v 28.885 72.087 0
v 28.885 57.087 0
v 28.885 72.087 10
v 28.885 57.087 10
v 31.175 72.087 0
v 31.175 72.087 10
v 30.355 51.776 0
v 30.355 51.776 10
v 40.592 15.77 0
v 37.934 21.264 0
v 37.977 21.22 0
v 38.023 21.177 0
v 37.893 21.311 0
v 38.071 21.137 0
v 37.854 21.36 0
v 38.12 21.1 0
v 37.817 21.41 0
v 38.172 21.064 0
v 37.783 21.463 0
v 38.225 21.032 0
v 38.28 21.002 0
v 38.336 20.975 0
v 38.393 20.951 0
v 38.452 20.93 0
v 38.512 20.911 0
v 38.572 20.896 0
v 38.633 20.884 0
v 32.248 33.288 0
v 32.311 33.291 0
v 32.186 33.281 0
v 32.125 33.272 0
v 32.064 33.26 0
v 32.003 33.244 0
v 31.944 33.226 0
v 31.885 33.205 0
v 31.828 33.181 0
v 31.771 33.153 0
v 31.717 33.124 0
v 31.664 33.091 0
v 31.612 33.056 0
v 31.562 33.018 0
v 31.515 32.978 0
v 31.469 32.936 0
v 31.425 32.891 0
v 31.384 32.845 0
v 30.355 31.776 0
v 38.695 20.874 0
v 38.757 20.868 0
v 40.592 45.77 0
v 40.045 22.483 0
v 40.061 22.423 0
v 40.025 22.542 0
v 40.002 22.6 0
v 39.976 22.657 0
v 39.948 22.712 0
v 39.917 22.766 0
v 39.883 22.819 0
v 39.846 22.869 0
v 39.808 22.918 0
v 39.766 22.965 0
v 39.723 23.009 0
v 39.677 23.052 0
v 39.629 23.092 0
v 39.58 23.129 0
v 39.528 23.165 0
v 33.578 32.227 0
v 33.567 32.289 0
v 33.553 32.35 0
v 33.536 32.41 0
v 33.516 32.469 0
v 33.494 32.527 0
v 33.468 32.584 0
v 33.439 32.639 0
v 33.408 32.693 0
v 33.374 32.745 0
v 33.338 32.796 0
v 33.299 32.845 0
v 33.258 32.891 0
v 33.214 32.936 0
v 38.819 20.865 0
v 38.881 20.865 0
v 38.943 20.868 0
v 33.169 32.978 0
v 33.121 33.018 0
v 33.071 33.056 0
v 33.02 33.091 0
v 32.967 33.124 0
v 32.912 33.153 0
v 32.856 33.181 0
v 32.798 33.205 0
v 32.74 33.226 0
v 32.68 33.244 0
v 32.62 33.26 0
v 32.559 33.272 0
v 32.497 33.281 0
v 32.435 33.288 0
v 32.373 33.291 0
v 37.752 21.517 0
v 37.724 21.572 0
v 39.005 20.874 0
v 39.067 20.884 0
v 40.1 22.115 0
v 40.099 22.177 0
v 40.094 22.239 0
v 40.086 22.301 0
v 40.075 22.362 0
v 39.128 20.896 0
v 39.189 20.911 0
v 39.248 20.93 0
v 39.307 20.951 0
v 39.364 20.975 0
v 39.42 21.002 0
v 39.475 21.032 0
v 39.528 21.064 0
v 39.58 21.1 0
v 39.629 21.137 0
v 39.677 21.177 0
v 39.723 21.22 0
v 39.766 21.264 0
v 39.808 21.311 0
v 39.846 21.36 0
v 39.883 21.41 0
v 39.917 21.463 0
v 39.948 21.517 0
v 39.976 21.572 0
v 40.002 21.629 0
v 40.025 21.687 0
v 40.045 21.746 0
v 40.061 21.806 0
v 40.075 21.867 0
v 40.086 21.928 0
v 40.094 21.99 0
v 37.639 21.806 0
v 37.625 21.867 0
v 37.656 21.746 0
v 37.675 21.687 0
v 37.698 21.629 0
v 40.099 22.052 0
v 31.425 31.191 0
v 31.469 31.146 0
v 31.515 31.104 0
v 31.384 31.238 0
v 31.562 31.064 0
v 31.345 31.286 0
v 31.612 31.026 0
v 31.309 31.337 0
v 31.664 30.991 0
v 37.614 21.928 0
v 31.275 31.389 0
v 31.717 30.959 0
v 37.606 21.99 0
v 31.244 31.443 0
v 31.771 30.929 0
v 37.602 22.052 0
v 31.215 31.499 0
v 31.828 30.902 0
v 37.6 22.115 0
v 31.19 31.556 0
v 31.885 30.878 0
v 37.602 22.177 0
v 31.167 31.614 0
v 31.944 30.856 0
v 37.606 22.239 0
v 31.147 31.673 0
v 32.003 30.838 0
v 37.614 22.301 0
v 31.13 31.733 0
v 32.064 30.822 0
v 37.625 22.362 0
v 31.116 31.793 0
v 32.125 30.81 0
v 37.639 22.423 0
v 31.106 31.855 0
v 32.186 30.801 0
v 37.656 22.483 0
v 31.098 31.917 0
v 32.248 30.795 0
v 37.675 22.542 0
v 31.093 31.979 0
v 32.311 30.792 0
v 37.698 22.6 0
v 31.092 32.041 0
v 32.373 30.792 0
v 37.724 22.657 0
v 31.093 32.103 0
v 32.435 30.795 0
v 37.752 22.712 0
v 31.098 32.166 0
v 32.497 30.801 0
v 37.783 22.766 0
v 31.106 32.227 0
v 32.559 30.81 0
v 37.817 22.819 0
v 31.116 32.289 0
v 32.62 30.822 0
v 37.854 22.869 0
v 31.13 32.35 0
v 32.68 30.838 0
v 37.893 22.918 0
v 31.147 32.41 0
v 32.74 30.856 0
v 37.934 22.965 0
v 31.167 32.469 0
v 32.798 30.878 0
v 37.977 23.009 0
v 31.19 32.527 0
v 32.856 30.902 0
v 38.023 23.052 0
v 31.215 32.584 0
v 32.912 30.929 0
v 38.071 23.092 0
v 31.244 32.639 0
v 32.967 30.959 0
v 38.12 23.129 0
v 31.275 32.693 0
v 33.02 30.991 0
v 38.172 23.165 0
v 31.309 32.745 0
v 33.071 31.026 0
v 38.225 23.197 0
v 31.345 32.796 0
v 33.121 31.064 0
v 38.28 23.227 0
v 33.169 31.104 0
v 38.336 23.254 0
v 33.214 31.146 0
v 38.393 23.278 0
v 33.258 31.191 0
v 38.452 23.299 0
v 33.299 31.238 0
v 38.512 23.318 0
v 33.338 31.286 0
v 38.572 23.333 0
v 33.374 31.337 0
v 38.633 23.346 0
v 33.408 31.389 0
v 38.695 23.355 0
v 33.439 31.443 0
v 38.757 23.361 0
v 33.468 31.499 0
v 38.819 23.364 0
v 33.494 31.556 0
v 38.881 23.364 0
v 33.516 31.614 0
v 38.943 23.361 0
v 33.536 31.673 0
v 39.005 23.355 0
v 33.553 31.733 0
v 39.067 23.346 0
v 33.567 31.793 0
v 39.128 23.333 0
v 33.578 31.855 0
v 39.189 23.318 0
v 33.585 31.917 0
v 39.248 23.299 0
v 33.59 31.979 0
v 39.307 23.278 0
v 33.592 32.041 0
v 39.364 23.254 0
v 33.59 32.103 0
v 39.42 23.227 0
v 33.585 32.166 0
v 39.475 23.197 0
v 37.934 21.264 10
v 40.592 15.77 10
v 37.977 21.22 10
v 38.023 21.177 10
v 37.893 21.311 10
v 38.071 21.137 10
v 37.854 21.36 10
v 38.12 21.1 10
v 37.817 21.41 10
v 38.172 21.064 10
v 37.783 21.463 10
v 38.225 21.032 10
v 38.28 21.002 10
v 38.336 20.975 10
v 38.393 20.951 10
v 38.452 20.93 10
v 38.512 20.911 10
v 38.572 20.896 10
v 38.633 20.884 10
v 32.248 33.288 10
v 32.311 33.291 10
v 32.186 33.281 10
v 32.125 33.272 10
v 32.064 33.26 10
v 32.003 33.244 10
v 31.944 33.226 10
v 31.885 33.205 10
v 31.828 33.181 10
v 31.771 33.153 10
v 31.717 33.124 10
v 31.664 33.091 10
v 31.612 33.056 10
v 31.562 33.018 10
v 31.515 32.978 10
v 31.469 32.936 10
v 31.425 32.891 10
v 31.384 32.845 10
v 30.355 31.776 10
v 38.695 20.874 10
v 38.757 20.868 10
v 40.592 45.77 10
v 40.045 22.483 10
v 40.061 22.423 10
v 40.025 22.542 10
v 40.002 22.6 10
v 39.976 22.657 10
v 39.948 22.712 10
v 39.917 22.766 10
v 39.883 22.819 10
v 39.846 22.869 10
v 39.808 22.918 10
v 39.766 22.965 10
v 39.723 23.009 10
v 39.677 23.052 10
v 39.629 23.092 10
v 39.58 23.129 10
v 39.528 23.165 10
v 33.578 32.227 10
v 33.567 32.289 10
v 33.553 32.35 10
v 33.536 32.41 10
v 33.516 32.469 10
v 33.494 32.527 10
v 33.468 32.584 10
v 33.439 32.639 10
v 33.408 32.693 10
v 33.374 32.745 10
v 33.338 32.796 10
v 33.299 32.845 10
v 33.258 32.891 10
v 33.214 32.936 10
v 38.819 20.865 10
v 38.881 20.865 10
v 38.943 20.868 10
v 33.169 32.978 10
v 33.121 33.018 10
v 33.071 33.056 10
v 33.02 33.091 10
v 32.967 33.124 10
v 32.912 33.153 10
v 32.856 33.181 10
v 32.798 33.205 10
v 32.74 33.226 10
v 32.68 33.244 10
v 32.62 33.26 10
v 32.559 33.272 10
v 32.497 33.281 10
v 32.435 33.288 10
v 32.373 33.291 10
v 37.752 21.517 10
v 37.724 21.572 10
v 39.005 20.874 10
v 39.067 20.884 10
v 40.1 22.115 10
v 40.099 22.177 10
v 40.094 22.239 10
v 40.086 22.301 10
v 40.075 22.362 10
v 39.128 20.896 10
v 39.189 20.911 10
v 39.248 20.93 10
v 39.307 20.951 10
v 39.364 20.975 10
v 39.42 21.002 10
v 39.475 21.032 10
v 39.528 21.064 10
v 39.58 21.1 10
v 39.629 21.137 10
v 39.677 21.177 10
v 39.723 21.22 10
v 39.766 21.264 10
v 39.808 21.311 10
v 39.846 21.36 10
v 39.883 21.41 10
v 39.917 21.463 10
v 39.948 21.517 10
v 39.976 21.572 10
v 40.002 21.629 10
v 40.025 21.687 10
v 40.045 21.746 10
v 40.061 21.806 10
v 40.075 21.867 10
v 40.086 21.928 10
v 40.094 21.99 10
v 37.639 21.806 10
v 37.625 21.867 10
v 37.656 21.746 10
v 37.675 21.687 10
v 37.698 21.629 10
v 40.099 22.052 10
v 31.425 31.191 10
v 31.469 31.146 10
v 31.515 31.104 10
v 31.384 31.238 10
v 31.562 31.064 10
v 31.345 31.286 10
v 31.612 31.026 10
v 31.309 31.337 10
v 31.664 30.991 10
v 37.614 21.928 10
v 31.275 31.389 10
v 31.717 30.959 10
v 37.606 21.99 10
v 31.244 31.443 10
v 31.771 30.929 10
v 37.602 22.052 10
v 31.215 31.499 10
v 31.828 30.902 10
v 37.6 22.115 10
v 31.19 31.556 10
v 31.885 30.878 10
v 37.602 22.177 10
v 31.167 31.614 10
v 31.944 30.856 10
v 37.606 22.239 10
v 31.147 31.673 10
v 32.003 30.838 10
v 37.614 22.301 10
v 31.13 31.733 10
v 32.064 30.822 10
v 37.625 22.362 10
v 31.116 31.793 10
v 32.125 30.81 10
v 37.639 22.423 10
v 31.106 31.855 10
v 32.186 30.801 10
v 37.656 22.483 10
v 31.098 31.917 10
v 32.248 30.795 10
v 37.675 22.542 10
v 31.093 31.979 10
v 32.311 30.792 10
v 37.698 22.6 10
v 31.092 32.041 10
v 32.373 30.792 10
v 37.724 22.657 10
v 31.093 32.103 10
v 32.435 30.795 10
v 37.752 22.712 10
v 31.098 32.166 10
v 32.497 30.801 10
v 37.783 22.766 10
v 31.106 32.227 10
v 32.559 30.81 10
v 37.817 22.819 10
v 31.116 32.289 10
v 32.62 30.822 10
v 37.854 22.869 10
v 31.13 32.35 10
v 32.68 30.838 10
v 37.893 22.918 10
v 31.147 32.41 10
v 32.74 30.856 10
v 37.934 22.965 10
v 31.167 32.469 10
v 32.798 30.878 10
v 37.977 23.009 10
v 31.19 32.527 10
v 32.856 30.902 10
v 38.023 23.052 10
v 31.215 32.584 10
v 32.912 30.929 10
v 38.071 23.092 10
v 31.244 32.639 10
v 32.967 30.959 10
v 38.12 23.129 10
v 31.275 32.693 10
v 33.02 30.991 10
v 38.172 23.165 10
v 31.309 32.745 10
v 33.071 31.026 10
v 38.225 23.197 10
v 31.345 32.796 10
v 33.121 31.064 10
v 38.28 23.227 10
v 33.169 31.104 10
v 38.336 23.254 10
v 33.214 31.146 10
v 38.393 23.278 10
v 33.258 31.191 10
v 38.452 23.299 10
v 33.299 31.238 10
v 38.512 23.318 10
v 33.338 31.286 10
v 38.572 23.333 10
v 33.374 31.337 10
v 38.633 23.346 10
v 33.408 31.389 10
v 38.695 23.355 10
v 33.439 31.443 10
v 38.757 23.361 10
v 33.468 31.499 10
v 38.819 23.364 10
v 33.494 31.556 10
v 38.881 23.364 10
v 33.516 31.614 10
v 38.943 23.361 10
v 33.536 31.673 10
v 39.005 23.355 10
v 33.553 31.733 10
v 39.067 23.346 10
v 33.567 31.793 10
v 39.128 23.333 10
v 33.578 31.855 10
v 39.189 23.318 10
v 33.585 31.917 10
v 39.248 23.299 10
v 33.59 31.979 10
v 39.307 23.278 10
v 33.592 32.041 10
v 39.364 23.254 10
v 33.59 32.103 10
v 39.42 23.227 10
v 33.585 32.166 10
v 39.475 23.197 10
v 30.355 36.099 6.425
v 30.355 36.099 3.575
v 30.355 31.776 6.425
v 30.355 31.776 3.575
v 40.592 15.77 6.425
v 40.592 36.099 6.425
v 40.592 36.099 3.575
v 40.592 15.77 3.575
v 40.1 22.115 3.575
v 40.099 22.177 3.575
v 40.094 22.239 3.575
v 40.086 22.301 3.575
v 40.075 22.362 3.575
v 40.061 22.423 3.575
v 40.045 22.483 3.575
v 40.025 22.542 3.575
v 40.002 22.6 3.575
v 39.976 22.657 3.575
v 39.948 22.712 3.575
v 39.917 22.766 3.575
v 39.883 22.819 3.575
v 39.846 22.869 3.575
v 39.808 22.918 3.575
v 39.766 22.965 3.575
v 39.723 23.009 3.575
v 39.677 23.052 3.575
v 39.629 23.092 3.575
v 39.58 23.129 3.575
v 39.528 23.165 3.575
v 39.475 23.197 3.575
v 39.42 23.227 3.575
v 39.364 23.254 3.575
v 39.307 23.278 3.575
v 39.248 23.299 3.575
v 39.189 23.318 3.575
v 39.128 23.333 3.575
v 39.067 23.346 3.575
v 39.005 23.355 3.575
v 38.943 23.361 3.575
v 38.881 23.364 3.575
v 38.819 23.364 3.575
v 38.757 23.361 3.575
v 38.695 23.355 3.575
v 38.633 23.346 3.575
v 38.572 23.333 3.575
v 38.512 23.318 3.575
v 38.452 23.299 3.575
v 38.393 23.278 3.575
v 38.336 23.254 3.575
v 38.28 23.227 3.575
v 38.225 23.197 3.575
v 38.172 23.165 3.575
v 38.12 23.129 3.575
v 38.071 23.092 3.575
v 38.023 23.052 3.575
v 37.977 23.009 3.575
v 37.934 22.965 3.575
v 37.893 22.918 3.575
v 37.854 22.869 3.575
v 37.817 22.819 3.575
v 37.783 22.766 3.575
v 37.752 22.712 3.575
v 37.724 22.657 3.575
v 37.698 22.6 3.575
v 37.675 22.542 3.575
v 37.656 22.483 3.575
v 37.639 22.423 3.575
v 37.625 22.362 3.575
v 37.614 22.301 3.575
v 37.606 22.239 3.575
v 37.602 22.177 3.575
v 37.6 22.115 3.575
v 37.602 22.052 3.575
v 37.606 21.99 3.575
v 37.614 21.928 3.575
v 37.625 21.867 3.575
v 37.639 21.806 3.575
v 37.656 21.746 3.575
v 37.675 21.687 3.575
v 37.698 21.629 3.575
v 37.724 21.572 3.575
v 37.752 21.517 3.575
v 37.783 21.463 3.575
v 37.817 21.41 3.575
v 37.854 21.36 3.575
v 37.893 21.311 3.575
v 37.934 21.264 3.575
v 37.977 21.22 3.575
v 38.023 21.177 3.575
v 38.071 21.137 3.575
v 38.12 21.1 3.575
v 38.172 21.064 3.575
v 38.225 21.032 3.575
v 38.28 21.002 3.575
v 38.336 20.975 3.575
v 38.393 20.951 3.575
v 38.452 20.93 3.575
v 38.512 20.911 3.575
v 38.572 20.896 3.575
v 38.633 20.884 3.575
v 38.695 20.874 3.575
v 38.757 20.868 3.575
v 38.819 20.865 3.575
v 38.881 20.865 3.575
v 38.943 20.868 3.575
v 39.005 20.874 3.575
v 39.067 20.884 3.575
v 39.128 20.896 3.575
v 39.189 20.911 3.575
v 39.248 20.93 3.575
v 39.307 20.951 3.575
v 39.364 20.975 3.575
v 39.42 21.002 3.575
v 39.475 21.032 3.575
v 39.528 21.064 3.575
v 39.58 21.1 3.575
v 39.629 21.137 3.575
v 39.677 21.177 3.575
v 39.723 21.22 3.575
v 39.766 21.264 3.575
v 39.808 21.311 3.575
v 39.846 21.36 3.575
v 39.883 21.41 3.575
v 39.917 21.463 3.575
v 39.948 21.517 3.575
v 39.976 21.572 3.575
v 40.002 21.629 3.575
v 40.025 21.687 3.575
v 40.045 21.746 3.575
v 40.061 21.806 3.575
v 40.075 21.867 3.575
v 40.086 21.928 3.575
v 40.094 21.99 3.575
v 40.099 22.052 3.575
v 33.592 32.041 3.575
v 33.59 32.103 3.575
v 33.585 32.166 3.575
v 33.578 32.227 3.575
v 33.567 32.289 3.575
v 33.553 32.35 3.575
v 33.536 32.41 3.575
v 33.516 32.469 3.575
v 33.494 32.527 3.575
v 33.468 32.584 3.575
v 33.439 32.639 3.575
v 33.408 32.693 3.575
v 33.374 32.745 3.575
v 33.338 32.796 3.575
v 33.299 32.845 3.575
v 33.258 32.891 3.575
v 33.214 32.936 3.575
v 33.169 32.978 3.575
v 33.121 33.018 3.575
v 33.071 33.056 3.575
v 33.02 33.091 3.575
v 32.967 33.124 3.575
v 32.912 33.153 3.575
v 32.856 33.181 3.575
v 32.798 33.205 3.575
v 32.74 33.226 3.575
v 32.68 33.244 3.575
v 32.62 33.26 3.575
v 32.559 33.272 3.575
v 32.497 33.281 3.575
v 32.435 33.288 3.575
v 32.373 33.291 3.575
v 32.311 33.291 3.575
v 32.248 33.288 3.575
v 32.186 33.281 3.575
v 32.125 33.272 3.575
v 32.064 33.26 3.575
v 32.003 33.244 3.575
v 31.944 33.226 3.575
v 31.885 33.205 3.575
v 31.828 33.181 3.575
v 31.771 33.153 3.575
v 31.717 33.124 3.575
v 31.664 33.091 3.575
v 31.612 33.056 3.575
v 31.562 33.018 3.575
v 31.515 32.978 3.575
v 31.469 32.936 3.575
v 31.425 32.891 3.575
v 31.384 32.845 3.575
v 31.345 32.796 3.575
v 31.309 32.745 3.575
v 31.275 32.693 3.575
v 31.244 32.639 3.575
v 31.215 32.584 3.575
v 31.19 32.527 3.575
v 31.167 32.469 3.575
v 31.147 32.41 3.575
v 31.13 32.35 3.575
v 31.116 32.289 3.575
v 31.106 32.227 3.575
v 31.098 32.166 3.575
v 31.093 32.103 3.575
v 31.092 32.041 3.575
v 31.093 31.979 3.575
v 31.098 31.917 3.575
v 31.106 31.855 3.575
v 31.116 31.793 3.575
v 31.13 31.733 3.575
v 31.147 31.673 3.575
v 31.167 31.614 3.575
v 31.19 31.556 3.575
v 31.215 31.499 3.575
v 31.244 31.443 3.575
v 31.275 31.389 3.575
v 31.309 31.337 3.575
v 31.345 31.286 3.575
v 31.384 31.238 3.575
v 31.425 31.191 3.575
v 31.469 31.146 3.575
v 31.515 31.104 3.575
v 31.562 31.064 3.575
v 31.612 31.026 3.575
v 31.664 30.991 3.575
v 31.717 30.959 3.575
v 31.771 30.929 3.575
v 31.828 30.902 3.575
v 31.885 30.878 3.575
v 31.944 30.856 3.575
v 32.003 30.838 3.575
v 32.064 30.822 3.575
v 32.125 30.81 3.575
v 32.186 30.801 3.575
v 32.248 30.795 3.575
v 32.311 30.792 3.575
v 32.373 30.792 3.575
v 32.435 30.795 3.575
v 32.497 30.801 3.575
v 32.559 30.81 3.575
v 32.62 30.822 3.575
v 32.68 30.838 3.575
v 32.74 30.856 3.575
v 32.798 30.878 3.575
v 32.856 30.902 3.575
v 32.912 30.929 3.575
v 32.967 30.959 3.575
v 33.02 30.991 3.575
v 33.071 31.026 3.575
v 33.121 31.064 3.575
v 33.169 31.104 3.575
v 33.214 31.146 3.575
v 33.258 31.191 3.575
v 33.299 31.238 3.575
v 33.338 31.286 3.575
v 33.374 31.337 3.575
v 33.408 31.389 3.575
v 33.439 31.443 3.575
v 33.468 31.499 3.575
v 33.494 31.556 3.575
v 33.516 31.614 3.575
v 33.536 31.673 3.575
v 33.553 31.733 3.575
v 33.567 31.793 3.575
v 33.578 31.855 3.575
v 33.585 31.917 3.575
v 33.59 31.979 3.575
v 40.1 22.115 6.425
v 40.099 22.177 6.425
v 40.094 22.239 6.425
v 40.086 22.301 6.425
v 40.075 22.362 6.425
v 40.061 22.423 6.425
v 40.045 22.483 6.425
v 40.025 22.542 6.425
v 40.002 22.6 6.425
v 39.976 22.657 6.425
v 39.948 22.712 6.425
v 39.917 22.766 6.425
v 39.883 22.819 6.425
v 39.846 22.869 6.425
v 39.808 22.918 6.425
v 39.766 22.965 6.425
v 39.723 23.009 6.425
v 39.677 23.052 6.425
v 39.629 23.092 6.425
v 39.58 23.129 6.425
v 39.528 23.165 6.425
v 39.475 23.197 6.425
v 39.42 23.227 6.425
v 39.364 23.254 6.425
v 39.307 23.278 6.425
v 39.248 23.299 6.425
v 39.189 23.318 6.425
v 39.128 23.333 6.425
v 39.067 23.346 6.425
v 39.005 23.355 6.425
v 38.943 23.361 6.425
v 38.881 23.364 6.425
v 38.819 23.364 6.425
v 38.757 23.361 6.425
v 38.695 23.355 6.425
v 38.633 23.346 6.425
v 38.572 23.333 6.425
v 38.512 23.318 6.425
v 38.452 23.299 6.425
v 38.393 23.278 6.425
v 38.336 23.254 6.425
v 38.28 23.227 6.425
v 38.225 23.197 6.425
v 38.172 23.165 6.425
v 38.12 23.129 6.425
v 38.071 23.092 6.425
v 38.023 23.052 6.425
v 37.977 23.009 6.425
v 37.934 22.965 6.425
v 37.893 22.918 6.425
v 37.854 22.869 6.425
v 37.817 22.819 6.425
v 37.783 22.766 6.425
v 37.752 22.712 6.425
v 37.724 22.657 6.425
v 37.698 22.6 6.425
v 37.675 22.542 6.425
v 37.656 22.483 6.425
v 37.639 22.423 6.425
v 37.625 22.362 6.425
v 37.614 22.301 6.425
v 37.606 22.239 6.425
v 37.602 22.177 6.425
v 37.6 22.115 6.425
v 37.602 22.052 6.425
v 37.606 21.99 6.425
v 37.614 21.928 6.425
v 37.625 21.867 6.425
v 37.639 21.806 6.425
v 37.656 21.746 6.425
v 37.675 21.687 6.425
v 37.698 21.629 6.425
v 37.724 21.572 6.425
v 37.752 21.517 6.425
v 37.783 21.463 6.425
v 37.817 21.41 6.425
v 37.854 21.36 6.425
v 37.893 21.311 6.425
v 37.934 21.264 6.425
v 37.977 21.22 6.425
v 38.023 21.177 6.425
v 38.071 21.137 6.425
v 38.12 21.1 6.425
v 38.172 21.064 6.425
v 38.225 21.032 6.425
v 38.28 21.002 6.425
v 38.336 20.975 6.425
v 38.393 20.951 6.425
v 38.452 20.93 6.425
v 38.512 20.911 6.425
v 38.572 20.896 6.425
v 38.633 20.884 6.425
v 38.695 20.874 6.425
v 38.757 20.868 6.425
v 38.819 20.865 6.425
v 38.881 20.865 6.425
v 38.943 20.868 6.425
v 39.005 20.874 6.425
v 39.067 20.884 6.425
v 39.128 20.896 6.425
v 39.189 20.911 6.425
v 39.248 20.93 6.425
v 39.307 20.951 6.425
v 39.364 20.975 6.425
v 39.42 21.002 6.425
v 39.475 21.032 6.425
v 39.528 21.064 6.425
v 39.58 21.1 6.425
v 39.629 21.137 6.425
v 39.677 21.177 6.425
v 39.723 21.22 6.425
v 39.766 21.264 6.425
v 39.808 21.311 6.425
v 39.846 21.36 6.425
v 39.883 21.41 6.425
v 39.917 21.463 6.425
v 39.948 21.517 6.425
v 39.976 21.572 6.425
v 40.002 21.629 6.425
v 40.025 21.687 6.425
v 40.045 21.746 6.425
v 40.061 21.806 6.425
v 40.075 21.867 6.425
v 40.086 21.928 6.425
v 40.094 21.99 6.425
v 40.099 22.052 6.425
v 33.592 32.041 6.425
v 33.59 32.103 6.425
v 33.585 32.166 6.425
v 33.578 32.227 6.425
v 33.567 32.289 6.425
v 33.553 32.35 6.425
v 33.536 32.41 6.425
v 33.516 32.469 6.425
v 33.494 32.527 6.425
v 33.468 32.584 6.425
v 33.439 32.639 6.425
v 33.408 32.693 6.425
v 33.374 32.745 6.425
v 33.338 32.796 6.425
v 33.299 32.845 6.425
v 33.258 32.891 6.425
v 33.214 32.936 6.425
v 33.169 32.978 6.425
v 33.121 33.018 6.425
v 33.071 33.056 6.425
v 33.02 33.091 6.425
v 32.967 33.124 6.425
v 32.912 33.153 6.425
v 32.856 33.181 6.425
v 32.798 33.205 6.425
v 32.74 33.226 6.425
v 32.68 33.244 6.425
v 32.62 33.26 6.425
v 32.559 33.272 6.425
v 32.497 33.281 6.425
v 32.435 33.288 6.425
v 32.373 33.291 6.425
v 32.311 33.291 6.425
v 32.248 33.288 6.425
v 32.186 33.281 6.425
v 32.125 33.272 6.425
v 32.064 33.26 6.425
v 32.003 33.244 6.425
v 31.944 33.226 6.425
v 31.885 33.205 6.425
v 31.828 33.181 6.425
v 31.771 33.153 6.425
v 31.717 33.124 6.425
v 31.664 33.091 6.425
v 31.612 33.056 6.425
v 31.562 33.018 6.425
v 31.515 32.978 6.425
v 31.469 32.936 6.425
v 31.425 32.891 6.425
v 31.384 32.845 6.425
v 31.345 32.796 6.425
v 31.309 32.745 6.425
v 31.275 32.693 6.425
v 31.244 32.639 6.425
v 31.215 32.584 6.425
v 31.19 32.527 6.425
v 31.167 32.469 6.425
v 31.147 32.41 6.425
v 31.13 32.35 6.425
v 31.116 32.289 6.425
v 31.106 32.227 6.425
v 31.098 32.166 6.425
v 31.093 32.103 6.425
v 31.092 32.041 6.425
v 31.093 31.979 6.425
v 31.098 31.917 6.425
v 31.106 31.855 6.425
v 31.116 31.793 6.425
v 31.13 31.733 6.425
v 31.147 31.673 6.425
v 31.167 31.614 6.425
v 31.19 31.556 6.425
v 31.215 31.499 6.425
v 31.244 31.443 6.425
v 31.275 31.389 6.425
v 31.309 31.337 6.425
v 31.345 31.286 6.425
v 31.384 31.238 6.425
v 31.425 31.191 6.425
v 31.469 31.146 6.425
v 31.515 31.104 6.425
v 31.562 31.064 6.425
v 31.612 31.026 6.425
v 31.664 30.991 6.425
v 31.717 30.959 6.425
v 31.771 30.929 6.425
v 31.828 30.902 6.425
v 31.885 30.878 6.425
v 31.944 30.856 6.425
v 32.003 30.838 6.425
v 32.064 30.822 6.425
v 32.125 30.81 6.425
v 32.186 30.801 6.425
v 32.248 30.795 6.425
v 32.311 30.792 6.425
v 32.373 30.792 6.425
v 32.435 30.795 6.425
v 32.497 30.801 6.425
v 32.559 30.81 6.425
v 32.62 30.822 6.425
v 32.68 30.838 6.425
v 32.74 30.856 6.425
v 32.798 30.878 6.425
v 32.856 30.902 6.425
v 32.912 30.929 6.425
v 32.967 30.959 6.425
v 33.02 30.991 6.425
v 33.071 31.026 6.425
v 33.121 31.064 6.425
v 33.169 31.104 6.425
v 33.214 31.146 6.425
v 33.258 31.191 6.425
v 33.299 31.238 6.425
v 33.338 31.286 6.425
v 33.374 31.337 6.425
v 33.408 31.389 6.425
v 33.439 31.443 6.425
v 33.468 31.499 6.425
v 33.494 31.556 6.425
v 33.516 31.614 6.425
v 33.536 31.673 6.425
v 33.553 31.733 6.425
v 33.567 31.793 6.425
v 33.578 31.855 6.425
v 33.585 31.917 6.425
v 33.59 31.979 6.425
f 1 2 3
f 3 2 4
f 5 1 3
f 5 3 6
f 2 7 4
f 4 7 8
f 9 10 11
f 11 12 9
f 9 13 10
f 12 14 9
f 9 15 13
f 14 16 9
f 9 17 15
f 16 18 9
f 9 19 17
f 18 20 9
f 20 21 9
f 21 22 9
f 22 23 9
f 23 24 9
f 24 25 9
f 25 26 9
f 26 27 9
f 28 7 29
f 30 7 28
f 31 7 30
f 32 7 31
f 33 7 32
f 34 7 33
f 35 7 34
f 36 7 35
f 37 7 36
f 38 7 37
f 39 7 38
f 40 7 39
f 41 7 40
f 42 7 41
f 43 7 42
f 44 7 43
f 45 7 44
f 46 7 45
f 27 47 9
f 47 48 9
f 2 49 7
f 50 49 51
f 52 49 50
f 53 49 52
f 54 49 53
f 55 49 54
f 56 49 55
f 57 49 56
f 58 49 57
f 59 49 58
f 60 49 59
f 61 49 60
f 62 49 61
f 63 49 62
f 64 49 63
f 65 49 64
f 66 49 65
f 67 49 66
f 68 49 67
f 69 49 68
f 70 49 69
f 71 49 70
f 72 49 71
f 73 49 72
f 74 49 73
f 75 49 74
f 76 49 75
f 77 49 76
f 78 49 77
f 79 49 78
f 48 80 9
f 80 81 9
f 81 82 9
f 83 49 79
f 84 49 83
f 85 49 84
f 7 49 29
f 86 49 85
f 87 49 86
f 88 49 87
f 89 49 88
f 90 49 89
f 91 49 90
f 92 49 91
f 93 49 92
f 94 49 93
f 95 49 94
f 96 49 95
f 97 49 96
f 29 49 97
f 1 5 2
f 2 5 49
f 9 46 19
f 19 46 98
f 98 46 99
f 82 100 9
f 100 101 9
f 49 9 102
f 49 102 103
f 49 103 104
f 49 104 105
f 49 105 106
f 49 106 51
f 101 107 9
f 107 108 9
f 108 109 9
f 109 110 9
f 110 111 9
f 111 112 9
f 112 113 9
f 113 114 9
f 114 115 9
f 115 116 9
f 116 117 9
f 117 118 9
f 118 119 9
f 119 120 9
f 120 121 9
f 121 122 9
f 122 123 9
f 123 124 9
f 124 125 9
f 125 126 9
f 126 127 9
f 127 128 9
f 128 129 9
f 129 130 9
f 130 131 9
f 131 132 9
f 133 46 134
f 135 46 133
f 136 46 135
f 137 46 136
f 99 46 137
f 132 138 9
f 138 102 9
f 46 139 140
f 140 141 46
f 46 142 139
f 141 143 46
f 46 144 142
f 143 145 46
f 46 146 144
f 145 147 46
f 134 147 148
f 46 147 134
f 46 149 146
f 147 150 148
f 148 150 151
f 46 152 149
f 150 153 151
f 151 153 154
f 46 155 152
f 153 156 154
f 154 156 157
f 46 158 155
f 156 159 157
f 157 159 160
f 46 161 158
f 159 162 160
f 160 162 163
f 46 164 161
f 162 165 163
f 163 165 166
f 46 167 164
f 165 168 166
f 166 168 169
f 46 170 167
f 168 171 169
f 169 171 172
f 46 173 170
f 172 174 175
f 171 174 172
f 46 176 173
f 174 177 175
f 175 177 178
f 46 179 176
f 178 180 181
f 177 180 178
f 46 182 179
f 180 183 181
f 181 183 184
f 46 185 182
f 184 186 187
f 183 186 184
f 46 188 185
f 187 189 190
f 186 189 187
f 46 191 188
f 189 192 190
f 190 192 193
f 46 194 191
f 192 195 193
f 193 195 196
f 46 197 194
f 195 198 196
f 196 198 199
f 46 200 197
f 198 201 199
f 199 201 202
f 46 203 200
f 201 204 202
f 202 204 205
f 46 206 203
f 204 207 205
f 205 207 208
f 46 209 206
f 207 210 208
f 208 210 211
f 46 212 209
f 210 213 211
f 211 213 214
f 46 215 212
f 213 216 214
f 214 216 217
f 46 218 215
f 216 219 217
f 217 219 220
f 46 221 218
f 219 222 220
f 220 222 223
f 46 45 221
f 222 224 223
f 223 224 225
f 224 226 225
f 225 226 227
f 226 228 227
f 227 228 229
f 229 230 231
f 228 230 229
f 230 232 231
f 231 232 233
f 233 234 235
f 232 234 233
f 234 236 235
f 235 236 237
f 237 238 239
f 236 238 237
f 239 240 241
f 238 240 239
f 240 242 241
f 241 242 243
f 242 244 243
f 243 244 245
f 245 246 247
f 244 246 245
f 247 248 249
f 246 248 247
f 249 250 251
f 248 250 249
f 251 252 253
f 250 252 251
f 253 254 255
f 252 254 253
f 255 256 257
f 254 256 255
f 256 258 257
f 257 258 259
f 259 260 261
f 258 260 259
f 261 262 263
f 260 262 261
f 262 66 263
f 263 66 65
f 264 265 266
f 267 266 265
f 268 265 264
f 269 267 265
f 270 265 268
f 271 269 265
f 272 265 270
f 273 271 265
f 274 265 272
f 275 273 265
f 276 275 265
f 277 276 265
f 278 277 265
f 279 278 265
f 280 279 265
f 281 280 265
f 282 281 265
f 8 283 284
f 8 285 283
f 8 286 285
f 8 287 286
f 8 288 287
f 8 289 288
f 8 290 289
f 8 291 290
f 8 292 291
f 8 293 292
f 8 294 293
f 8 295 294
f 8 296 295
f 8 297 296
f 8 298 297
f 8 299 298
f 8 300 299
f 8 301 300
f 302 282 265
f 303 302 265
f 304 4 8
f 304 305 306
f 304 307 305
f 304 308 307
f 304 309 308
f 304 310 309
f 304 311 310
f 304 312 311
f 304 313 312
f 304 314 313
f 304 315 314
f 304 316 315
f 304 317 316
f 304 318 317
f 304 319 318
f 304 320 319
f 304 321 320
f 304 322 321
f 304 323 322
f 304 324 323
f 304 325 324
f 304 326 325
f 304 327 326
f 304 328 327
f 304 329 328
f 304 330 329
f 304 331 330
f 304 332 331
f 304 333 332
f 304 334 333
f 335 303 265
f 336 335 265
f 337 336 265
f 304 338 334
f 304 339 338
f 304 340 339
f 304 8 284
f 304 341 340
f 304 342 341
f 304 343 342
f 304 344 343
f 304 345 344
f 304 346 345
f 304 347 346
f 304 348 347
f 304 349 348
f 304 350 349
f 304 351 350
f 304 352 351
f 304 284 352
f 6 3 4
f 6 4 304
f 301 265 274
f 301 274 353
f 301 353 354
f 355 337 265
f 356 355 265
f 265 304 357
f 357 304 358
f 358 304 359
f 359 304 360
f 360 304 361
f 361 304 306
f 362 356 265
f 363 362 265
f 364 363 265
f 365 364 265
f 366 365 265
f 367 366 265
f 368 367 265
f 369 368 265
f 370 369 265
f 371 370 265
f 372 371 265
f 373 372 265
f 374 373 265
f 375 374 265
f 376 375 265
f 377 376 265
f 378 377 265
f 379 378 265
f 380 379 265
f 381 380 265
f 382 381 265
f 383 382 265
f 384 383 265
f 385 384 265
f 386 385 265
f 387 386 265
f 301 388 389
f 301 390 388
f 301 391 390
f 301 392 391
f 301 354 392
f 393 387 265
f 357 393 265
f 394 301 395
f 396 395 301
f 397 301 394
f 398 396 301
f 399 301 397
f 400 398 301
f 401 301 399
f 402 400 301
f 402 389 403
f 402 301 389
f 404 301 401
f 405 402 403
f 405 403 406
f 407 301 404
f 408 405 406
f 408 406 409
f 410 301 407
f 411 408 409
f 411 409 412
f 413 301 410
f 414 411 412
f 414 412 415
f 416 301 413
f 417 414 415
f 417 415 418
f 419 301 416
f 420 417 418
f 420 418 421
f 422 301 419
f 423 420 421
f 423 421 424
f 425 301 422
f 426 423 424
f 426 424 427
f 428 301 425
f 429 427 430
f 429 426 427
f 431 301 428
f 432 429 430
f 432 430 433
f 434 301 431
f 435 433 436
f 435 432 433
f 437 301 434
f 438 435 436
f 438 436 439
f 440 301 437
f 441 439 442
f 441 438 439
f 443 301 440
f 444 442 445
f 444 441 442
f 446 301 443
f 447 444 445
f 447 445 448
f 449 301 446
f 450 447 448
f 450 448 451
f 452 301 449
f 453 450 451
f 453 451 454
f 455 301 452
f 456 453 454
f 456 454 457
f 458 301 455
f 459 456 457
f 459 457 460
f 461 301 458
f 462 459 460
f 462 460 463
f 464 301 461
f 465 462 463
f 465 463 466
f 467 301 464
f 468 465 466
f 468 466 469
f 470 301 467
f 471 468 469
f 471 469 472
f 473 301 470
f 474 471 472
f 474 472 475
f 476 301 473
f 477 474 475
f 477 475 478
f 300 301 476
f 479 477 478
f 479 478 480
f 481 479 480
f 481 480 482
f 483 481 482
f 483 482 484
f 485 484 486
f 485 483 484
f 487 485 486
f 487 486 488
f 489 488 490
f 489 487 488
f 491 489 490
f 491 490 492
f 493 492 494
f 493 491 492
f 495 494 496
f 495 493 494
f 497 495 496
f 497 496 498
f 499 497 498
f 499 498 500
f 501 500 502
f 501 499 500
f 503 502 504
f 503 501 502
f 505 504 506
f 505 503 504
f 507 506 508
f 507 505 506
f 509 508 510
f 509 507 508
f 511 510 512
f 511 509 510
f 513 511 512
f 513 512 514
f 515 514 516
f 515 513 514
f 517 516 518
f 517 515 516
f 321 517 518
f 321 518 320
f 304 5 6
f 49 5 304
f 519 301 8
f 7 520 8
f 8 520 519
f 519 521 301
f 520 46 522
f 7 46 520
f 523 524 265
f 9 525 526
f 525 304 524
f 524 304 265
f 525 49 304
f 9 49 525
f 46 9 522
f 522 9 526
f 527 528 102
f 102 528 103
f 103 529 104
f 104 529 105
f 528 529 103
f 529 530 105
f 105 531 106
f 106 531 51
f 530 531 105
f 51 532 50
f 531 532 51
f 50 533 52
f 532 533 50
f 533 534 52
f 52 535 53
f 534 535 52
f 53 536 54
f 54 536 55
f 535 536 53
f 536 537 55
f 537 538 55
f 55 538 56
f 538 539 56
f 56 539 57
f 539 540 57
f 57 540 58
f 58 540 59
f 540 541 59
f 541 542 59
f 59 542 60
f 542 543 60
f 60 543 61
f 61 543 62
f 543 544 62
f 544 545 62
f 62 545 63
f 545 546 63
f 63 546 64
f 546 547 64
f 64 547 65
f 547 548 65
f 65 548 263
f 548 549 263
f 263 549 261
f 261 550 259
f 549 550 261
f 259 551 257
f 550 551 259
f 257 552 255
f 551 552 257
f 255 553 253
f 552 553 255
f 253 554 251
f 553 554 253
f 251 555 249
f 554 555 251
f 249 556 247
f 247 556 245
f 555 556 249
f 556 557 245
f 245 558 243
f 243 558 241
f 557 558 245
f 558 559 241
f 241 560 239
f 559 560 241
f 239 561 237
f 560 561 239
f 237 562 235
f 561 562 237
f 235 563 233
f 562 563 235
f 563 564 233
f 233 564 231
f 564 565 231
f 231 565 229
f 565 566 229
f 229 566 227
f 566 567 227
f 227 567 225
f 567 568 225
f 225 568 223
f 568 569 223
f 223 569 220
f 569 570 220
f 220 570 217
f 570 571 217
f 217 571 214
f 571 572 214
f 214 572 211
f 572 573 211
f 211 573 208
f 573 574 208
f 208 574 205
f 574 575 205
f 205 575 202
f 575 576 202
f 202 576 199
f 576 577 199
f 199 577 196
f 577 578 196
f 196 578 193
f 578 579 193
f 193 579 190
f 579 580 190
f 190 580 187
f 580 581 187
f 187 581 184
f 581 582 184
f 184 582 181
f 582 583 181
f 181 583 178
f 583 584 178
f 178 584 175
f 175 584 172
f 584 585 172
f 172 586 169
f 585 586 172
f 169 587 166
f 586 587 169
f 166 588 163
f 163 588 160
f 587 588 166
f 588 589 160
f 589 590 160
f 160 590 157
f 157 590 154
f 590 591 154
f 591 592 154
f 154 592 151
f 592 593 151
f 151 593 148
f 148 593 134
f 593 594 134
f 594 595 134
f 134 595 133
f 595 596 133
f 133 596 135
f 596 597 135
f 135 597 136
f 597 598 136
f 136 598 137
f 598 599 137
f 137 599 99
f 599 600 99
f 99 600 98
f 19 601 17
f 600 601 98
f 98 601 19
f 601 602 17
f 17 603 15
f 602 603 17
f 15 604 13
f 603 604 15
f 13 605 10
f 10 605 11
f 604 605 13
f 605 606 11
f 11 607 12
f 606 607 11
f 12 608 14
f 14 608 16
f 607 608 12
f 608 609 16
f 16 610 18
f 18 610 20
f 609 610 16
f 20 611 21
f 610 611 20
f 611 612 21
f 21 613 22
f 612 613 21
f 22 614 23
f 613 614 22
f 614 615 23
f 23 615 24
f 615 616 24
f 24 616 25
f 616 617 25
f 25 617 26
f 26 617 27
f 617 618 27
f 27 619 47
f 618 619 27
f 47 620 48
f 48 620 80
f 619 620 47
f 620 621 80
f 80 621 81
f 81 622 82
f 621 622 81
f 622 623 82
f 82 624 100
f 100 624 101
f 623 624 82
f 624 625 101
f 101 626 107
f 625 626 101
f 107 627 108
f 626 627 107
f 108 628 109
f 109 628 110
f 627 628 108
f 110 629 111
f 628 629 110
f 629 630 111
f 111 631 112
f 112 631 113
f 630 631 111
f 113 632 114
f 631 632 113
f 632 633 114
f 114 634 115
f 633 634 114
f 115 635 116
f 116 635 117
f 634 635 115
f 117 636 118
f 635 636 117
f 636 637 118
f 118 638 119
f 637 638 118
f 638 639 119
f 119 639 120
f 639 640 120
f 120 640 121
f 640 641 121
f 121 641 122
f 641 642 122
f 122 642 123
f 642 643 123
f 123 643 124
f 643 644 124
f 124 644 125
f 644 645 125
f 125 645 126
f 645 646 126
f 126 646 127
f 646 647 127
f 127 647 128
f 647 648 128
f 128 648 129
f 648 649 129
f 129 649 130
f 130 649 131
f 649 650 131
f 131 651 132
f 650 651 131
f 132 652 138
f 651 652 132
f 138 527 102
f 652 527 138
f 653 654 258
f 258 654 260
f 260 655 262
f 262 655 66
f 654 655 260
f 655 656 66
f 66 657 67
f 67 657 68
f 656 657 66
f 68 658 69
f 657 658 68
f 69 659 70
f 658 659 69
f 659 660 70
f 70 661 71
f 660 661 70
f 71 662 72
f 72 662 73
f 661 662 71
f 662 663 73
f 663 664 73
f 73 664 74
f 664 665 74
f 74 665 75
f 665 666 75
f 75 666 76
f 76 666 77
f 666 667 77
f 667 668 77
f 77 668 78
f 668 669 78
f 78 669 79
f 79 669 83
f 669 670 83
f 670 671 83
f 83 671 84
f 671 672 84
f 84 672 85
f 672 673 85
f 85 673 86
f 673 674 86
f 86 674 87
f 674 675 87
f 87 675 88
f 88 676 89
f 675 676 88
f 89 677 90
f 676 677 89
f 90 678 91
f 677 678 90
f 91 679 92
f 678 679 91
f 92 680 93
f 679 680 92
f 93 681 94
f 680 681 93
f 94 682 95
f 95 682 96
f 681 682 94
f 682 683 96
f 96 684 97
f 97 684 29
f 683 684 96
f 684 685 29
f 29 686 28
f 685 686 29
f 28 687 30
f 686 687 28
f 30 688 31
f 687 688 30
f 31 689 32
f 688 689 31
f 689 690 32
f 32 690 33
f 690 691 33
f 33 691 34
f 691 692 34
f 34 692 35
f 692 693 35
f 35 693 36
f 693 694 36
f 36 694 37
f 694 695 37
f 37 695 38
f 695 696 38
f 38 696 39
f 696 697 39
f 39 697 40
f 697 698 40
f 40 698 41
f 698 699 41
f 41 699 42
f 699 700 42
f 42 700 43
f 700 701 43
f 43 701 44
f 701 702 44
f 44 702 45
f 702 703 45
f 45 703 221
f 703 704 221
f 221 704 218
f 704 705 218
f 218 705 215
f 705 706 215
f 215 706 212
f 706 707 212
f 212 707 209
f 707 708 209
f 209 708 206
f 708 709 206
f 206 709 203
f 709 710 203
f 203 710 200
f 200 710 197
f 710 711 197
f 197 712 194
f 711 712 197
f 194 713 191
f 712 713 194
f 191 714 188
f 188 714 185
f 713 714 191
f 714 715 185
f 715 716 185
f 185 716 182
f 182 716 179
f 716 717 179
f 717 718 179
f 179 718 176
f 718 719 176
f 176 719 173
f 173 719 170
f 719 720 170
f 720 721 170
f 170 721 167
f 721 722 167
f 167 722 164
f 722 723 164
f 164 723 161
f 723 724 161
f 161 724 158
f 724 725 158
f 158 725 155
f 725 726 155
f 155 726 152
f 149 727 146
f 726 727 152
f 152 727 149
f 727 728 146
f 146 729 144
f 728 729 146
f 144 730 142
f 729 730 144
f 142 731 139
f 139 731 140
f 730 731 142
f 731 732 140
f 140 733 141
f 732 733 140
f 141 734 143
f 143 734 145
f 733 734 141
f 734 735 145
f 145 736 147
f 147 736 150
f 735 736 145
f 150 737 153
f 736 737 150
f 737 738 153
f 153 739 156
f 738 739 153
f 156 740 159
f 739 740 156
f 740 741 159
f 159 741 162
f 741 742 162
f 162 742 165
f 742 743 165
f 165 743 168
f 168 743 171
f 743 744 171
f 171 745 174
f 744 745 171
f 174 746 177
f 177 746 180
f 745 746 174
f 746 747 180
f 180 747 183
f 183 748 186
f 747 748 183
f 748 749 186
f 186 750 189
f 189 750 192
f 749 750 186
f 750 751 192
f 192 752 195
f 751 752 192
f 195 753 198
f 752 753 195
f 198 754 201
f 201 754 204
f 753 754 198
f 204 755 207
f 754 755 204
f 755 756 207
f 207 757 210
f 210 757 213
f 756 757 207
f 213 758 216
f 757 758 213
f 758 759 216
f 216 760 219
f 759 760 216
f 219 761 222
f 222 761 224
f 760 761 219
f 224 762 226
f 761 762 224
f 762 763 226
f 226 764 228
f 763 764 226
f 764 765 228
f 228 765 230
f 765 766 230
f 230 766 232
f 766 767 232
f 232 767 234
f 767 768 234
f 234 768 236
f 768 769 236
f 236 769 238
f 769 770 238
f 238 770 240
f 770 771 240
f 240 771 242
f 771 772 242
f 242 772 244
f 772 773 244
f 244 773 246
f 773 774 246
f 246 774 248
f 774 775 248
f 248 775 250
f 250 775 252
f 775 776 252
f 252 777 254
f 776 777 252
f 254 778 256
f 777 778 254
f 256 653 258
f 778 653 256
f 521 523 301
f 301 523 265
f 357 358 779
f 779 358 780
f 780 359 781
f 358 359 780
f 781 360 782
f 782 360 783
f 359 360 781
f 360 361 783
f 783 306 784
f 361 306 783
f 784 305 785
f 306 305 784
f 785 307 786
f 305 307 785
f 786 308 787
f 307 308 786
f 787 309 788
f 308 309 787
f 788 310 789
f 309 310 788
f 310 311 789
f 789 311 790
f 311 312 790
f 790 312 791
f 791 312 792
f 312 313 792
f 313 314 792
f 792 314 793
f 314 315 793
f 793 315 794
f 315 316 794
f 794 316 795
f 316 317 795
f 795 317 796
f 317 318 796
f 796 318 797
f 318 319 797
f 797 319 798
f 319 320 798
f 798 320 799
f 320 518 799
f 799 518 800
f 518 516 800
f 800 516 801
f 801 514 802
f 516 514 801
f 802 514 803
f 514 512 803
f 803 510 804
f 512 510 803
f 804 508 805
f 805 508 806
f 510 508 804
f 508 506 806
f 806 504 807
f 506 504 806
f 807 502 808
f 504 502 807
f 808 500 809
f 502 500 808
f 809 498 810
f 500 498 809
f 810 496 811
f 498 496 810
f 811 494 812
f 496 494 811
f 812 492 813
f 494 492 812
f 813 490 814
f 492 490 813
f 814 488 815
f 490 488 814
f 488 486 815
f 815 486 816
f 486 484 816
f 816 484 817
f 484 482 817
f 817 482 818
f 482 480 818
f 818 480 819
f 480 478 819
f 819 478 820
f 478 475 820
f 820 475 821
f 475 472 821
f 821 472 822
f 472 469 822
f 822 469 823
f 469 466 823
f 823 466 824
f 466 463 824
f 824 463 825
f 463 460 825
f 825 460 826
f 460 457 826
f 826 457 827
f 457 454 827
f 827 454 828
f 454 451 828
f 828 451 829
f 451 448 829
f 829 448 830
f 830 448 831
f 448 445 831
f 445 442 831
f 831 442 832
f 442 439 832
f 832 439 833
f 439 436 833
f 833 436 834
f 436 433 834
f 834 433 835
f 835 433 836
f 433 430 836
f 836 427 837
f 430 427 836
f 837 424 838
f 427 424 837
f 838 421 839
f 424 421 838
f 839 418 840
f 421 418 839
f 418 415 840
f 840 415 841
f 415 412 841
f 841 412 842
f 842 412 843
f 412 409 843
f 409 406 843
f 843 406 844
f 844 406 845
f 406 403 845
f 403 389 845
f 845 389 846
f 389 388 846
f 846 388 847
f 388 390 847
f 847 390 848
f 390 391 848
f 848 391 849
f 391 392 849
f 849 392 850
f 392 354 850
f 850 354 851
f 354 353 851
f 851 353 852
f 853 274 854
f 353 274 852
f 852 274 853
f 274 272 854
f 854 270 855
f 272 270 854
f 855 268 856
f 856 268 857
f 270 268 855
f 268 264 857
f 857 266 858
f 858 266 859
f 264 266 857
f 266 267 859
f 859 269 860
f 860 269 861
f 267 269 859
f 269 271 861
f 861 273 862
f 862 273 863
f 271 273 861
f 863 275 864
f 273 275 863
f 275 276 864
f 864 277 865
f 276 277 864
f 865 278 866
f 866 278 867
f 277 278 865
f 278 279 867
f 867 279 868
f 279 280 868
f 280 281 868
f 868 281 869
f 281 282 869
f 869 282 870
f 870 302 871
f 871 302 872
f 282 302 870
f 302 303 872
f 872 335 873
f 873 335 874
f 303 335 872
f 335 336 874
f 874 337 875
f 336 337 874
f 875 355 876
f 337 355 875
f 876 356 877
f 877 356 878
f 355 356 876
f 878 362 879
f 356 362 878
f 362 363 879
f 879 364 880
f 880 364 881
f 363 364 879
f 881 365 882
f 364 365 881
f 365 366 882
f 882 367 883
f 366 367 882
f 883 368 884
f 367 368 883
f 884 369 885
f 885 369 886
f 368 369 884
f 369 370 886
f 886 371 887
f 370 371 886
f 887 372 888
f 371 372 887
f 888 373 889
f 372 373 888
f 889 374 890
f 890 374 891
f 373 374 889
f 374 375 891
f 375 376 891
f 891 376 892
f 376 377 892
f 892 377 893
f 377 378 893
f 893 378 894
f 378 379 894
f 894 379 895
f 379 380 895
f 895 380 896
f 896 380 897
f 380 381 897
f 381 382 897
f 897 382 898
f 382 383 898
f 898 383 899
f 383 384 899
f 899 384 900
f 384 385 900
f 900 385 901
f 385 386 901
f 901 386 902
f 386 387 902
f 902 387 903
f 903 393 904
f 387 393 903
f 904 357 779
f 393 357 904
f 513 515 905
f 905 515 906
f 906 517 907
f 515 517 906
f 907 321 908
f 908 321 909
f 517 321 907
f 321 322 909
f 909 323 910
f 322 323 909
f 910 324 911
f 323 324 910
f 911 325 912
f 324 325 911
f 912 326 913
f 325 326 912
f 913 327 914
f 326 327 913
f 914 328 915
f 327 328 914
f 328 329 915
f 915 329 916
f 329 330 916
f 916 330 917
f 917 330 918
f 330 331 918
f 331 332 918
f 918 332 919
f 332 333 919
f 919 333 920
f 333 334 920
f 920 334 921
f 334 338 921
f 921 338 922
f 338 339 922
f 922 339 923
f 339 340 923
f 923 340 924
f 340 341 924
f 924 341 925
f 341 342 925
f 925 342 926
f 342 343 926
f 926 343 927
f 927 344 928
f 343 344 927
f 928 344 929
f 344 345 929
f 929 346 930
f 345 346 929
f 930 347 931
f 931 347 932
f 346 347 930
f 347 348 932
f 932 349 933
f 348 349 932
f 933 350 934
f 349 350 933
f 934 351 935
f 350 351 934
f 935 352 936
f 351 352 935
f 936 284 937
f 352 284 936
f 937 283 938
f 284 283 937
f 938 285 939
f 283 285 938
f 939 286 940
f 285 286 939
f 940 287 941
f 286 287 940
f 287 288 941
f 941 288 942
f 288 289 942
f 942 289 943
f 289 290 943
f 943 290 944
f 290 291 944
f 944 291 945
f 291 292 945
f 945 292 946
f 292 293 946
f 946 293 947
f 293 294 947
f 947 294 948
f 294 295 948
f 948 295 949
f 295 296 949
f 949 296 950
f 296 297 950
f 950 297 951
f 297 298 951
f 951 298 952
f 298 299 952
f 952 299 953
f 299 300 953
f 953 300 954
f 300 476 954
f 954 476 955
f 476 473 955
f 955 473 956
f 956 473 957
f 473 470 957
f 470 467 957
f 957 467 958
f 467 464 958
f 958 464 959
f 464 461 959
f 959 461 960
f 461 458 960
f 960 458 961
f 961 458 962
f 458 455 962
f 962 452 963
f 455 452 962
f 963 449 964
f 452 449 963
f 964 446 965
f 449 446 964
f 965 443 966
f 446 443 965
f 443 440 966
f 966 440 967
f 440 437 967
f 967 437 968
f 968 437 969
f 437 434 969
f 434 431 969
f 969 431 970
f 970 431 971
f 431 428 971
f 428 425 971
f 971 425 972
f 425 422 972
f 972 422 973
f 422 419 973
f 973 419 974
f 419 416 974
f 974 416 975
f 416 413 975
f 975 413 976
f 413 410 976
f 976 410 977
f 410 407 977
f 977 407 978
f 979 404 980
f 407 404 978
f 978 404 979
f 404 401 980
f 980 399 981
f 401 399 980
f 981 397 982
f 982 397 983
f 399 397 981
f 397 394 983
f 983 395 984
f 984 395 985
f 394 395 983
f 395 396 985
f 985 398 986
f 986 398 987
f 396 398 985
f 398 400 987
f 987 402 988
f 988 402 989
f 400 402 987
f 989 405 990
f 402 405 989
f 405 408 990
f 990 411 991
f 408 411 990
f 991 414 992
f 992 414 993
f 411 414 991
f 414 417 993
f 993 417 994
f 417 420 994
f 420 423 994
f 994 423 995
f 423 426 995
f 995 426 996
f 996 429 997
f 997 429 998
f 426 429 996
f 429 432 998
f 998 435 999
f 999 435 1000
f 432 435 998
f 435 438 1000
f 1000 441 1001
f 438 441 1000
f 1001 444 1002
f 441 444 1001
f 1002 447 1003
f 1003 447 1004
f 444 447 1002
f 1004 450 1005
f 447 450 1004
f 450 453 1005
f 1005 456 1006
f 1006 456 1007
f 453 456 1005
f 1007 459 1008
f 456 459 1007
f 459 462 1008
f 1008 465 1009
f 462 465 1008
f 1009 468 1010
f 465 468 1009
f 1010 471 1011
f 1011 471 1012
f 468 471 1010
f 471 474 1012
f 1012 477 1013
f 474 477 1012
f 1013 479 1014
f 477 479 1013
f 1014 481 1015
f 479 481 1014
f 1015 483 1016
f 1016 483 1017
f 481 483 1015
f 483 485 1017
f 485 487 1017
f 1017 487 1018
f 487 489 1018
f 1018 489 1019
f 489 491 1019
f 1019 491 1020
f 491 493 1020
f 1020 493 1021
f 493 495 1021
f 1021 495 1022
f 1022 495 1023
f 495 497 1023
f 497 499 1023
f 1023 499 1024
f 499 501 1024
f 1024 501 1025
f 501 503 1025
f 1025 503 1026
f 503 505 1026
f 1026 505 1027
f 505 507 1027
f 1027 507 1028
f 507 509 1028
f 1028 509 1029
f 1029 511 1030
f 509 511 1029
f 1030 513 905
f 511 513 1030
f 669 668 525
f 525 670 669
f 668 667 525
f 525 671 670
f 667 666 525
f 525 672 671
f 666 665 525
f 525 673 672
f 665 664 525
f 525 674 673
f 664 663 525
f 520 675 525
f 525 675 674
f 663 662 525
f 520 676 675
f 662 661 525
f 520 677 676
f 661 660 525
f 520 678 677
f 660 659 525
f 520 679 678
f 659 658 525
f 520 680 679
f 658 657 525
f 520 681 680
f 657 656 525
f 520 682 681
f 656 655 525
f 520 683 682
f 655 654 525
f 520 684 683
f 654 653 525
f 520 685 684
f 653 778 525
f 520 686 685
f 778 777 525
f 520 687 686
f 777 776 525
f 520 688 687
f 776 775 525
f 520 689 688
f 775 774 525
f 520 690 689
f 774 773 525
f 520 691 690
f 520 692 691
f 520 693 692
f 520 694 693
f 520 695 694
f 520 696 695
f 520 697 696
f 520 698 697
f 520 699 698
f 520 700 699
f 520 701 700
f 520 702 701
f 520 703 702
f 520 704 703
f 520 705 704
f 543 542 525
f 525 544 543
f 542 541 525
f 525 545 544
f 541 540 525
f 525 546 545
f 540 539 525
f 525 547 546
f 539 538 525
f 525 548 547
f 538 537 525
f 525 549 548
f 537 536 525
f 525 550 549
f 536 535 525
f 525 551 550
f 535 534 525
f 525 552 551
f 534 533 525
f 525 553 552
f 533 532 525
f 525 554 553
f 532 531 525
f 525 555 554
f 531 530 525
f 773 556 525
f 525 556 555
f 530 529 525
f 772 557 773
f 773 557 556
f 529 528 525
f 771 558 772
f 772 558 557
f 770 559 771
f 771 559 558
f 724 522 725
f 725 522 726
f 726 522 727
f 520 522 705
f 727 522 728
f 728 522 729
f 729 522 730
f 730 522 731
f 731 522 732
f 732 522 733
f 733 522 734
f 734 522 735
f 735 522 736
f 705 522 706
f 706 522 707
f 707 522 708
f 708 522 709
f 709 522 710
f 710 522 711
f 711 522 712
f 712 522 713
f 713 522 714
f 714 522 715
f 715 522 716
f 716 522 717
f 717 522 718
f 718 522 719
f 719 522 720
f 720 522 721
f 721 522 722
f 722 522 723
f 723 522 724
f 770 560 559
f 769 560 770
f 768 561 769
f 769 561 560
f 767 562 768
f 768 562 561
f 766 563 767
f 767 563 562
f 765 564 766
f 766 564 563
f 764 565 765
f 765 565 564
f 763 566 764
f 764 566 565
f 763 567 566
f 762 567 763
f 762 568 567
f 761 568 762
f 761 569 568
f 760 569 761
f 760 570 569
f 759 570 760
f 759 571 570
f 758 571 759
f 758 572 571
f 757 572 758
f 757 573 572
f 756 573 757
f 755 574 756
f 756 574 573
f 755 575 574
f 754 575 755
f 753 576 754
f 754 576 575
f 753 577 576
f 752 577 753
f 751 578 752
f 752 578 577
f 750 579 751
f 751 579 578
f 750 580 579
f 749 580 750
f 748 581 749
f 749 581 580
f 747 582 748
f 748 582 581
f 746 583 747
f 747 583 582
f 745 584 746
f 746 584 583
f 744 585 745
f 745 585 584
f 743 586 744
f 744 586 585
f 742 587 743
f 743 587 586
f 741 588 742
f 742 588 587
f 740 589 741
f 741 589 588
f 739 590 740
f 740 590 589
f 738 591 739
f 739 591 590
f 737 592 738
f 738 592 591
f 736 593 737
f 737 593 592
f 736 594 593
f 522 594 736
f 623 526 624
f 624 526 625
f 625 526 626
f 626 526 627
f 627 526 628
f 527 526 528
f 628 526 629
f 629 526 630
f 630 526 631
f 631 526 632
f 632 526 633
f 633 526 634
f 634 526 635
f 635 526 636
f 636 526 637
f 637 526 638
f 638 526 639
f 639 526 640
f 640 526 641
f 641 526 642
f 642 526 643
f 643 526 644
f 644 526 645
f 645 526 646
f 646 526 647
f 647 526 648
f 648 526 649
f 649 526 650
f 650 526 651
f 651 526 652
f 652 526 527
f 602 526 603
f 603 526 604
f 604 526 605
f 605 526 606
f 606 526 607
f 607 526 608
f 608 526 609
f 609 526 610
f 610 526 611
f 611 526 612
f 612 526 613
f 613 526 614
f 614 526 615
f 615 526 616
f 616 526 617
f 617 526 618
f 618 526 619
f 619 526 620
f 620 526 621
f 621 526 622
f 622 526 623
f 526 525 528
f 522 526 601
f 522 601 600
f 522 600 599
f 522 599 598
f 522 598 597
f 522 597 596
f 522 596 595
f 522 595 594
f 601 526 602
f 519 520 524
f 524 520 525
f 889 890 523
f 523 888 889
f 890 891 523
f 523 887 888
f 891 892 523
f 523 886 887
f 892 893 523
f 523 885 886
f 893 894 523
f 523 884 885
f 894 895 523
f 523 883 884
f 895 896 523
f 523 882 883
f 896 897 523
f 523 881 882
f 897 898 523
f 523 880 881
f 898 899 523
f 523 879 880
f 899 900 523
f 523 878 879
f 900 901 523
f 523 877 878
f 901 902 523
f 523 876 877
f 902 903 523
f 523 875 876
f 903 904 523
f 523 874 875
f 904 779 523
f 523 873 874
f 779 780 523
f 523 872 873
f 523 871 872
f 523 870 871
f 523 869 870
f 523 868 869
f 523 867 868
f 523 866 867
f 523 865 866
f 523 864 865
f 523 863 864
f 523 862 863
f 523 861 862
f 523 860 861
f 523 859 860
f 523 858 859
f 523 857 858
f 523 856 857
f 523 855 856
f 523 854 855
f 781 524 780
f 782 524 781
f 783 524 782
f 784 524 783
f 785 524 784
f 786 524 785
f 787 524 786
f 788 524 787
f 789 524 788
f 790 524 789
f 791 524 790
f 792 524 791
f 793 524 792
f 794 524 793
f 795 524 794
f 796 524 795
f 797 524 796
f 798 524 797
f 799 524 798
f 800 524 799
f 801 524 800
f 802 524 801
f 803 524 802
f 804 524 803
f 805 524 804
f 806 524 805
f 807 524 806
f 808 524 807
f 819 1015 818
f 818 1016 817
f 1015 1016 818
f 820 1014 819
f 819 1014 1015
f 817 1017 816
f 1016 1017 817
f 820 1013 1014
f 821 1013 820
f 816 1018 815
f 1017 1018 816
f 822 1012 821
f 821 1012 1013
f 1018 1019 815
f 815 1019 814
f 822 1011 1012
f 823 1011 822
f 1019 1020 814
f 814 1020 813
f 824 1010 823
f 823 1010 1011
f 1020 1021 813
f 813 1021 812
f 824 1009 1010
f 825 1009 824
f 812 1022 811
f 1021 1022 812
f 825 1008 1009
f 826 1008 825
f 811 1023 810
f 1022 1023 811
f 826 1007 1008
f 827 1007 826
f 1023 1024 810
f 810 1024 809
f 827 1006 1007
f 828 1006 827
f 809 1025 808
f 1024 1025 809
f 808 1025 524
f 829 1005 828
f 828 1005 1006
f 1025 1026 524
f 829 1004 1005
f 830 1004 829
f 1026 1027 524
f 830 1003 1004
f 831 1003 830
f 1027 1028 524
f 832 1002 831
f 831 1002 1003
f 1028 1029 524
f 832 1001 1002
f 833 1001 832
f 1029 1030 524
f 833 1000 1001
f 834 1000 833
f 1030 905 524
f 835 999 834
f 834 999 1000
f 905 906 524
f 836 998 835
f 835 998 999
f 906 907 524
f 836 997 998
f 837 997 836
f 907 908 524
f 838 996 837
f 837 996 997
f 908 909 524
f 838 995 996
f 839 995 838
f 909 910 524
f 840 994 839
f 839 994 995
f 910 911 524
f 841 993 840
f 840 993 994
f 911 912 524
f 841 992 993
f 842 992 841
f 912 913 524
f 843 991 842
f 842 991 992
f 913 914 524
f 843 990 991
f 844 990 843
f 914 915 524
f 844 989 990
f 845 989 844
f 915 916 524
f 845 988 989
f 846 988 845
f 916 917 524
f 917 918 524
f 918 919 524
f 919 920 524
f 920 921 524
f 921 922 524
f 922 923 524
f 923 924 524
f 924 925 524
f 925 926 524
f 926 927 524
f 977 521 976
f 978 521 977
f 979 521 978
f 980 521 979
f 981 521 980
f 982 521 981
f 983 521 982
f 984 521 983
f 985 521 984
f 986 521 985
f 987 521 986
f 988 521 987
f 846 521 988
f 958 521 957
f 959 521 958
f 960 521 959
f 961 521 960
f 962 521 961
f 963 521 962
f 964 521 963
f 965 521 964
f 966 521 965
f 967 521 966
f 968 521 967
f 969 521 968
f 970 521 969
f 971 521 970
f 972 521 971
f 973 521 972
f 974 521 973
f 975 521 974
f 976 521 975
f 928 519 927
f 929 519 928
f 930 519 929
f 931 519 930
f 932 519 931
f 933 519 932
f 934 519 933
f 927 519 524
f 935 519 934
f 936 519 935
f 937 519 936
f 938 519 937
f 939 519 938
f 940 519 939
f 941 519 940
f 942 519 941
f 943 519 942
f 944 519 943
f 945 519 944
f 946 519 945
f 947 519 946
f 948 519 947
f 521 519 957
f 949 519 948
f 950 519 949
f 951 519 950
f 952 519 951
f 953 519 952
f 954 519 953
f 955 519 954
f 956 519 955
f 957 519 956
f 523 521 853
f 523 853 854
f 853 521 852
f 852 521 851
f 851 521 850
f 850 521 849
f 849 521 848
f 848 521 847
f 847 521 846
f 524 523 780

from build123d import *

# Parameters (mm, degrees)
SKETCH002_R      = 1.25
EXTRUDE002_DEPTH = 10
SKETCH001_W      = 21
SKETCH001_H      = 2.85
EXTRUDE001_DEPTH = 12
EXTRUDE_DEPTH    = 10


with BuildPart() as extrude002:
    # Sketch002 (on Face5 of Cut) → Extrude002 (new body)
    with BuildSketch(Plane.XY.offset(10)):
        with Locations((32.341689, 32.041152)):
            Circle(SKETCH002_R)
        with Locations((38.850059, 22.11452)):
            Circle(SKETCH002_R)
    extrude(amount=-EXTRUDE002_DEPTH)


with BuildPart() as extrude001:
    # Sketch001 (on Face1 of Extrude) → Extrude001 (new body)
    with BuildSketch(Plane(origin=(28.885191, 0, 0), x_dir=(0, -1, 0), z_dir=(-1, 0, 0))):
        with Locations((-25.598607, 5)):
            Rectangle(SKETCH001_W, SKETCH001_H)
    extrude(amount=-EXTRUDE001_DEPTH)


with BuildPart() as cut001:
    # Sketch → Extrude (new body)
    with BuildSketch(Plane.XY):
        Polygon((30.354899, 31.776263), (40.592222, 15.770101), (40.592222, 45.770101), (31.175097, 72.086635), (28.885191, 72.086635), (28.885191, 57.086635), (30.354899, 51.776263), align=None)
    extrude(amount=EXTRUDE_DEPTH)

    # Cut: cut Extrude001
    add(extrude001.part, mode=Mode.SUBTRACT)

    # Cut001: cut Extrude002
    add(extrude002.part, mode=Mode.SUBTRACT)


solid = cut001.part
